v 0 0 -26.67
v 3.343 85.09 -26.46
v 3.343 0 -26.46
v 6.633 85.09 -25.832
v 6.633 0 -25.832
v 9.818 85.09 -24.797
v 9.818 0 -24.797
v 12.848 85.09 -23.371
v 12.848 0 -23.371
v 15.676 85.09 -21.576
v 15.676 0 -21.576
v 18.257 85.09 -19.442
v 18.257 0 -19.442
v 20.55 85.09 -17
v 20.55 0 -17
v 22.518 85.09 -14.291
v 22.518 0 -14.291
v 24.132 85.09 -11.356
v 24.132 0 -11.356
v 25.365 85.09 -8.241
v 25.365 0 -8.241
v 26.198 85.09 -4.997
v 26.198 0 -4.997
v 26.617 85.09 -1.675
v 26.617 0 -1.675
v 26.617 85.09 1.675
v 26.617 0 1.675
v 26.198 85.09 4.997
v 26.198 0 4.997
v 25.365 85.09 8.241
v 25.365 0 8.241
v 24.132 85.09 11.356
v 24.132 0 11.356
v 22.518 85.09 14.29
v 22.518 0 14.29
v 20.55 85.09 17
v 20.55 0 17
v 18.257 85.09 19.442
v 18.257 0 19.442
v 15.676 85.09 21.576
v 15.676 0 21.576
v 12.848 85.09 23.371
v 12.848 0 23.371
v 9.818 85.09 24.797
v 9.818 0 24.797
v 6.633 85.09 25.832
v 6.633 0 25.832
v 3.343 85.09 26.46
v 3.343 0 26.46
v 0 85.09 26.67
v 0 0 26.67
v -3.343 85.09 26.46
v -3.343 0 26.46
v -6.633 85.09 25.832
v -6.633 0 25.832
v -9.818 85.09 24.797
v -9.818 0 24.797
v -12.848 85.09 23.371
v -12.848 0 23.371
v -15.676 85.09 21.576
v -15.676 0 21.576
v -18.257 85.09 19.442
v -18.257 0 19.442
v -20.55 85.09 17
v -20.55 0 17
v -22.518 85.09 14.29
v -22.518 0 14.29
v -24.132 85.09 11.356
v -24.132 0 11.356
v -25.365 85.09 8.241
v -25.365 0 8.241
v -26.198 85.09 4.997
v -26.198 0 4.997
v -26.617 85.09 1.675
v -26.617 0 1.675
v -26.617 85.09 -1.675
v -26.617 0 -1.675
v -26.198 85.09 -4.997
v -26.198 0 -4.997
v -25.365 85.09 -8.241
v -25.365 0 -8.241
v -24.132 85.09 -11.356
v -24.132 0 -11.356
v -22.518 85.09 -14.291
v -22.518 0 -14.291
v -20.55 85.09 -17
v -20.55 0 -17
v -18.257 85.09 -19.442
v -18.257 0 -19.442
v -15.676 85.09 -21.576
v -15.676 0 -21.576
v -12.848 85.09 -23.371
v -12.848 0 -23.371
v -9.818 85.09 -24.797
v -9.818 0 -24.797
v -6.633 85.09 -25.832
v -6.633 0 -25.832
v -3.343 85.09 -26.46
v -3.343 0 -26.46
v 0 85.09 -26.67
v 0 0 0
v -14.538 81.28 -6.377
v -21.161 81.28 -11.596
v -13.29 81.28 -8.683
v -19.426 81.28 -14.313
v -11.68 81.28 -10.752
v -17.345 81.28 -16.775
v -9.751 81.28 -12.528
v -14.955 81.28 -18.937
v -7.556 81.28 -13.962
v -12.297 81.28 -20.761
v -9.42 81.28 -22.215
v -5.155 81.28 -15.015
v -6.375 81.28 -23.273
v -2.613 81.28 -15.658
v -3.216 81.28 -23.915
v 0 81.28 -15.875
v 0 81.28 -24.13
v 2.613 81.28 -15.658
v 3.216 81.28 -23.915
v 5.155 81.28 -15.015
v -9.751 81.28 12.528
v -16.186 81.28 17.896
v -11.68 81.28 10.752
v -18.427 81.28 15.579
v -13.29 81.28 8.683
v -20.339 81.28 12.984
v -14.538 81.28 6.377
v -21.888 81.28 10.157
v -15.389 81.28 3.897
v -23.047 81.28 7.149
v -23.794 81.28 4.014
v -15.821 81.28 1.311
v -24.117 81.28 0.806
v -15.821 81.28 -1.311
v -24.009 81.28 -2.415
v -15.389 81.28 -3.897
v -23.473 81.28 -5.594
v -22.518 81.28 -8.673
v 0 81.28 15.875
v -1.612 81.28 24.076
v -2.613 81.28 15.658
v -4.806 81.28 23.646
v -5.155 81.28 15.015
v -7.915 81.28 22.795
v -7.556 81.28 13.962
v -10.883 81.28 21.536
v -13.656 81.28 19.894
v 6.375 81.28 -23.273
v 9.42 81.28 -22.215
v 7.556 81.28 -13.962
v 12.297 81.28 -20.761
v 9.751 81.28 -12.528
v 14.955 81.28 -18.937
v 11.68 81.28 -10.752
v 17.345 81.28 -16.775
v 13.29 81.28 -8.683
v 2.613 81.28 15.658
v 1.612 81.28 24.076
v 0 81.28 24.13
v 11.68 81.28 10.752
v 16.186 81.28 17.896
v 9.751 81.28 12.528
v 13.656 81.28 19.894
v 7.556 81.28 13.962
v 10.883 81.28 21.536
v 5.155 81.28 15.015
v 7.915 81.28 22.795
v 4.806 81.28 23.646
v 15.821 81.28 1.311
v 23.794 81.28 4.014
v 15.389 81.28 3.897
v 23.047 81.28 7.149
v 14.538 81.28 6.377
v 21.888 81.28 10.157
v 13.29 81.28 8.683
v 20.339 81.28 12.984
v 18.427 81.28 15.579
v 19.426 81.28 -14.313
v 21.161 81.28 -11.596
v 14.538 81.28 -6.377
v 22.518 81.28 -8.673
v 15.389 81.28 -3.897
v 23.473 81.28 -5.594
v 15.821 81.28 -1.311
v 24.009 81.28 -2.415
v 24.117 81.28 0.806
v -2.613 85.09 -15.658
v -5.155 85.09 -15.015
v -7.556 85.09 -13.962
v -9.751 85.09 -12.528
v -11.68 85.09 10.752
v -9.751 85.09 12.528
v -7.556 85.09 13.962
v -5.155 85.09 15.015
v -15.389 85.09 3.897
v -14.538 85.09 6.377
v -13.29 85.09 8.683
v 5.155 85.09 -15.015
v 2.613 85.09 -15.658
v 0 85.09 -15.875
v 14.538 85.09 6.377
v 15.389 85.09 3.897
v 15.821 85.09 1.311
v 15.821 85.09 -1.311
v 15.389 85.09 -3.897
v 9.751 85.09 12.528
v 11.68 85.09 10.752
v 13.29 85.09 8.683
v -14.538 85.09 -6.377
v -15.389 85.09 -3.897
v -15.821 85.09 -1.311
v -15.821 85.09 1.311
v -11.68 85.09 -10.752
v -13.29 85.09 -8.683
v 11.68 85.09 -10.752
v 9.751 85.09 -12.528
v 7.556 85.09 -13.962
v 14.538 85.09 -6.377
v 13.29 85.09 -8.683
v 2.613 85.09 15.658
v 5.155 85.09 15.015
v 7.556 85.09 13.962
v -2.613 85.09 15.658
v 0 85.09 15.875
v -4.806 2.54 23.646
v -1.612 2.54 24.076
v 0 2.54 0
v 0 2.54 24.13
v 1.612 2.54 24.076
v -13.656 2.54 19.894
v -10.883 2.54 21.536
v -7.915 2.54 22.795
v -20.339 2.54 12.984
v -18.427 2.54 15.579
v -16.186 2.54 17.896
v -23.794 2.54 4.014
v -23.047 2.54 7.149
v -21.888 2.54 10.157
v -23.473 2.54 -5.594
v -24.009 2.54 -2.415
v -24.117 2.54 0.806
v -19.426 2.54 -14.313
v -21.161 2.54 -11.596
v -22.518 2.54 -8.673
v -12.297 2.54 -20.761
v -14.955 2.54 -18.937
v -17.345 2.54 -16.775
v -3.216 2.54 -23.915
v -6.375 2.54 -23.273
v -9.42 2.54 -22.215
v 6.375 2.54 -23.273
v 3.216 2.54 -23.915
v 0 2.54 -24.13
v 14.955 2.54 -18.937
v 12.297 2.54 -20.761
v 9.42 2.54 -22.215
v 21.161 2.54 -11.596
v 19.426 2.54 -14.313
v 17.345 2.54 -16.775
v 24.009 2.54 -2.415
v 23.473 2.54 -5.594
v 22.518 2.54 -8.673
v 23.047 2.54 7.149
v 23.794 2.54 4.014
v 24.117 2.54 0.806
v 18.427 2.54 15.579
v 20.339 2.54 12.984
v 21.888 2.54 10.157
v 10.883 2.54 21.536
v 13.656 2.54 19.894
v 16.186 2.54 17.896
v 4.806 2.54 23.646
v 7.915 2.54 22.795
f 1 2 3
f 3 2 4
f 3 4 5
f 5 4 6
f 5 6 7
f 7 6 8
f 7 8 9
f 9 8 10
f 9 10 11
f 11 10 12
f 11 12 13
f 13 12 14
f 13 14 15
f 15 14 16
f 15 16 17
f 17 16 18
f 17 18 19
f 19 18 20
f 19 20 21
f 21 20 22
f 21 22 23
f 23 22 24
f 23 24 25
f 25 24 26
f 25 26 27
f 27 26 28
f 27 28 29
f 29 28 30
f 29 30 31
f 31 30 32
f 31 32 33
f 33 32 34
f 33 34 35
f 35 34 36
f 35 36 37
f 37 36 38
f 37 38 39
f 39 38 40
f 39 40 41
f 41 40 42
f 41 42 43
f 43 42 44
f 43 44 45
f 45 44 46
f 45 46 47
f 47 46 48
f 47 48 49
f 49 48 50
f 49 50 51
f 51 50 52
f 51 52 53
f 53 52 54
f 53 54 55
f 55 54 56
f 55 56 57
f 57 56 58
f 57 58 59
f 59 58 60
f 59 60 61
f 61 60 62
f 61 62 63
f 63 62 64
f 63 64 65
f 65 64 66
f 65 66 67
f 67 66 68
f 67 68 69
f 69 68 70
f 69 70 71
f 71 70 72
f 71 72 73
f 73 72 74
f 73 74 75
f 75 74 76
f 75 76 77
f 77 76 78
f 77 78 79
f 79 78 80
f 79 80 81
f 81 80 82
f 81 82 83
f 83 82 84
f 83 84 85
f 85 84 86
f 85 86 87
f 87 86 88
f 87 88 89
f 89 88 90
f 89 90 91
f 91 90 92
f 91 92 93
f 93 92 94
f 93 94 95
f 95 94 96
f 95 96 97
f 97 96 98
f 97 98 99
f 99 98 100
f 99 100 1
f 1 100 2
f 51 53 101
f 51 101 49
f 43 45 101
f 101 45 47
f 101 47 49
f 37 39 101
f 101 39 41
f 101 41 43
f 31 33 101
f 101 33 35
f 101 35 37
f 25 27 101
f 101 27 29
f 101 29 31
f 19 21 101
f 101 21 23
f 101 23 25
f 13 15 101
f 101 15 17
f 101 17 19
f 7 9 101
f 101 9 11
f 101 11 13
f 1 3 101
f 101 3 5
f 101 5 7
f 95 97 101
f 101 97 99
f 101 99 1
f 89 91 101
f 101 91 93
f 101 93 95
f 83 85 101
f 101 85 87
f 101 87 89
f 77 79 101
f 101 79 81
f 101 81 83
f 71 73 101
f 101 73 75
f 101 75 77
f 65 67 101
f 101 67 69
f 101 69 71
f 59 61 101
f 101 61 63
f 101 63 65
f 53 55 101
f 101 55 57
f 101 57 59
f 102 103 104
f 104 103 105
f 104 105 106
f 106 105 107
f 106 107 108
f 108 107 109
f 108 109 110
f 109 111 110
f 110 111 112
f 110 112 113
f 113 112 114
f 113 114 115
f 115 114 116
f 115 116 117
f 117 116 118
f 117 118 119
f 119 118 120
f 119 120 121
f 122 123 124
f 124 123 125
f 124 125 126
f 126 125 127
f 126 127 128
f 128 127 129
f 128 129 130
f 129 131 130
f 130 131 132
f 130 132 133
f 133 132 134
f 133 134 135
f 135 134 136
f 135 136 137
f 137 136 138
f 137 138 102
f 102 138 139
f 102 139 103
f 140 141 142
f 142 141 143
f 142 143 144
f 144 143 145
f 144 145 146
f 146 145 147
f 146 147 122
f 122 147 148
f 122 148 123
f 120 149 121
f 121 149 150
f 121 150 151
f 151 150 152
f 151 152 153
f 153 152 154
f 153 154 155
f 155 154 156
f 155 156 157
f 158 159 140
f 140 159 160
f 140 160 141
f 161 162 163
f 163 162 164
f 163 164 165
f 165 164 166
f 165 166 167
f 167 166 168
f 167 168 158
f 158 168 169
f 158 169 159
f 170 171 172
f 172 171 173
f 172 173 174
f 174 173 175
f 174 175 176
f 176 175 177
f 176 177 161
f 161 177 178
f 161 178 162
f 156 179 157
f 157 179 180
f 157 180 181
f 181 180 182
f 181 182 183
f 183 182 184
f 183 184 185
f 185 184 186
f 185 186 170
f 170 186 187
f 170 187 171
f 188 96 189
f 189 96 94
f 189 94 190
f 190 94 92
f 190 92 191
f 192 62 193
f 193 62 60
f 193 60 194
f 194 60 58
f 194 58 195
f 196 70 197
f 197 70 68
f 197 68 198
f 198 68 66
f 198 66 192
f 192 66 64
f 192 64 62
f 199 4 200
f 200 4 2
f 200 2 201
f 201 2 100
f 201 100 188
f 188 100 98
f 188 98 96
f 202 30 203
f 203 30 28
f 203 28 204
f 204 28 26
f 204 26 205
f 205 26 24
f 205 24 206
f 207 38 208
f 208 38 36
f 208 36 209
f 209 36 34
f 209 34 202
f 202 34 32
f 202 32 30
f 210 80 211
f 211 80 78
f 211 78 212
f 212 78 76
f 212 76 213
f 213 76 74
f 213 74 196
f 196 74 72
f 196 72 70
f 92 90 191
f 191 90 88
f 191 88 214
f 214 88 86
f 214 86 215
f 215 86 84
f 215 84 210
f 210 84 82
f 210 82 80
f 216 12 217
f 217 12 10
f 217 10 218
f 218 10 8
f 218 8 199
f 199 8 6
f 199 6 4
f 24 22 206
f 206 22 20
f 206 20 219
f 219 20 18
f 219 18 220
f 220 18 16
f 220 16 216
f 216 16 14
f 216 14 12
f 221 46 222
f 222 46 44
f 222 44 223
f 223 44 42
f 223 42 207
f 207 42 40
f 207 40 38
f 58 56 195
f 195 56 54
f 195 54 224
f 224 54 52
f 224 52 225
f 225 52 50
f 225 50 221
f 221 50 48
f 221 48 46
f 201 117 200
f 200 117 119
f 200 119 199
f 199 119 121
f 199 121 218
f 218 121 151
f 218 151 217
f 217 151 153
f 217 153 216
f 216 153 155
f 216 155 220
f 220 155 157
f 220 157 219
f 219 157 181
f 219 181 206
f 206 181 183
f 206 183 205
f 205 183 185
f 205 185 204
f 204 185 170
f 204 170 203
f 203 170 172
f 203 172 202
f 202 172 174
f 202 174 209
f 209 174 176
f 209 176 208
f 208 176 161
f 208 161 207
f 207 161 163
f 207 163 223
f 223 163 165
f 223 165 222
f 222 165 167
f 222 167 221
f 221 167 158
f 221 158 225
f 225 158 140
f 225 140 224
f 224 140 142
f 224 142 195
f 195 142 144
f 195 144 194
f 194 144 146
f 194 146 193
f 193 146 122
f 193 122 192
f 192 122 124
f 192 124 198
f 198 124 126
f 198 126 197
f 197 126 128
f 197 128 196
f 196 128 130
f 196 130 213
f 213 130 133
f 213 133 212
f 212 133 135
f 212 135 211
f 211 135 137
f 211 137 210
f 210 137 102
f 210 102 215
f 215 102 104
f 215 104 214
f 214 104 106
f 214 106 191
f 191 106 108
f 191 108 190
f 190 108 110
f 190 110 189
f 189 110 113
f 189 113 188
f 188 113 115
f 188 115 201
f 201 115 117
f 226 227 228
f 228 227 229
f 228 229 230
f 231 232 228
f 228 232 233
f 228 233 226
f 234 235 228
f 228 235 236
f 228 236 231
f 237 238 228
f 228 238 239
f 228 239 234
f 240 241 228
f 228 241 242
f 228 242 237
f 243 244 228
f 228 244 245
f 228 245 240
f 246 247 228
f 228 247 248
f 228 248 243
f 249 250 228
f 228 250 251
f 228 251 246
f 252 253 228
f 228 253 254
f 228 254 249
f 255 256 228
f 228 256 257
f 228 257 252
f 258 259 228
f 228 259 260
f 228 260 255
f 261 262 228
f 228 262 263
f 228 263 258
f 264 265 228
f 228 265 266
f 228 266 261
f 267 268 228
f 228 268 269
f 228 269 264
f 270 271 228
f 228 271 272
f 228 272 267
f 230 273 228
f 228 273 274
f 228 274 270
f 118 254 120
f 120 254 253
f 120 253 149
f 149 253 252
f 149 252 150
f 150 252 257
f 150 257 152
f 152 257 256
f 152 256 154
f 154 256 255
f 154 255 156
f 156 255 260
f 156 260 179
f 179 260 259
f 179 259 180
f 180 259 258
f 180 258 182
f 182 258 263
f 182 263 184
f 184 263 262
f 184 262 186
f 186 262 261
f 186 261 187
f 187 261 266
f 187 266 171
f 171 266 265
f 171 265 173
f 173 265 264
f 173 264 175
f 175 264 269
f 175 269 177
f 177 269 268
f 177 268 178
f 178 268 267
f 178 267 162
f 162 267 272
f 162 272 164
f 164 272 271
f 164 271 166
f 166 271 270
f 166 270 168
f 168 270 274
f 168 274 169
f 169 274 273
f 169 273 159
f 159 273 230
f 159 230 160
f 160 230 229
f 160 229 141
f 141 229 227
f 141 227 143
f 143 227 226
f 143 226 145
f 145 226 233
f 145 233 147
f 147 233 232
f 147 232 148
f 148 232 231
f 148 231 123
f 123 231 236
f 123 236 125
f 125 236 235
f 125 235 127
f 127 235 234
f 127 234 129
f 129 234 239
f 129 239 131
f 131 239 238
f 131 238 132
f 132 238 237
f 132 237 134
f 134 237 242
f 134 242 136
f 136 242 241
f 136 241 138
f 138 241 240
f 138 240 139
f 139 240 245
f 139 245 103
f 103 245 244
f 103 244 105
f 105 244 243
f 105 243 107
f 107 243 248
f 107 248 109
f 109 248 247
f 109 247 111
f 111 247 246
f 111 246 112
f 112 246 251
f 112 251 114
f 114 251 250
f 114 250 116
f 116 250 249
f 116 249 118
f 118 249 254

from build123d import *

# Parameters (mm, degrees)
SKETCH1_R           = 26.67
BOSS_EXTRUDE1_DEPTH = 81.28
SHELL1_T            = -2.54
SKETCH2_R           = 26.67
SKETCH2_R_2         = 15.875
BOSS_EXTRUDE2_DEPTH = 3.81


with BuildPart() as part:
    # Sketch1 → Boss-Extrude1 (new body)
    with BuildSketch(Plane(origin=(0, 0, 0), x_dir=(1, 0, 0), z_dir=(0, 1, 0))):
        with Locations(Location((0, 0, 0), (0, 0, 270))):
            Circle(SKETCH1_R)
    extrude(amount=BOSS_EXTRUDE1_DEPTH)

    # Shell1
    shell1_openings = [part.faces().sort_by_distance(p)[0] for p in [
        (0, 81.28, 0),
    ]]
    offset(amount=SHELL1_T, openings=shell1_openings, kind=Kind.INTERSECTION)

    # Sketch2 → Boss-Extrude2 (add)
    with BuildSketch(Plane(origin=(0, 81.28, 0), x_dir=(1, 0, 0), z_dir=(0, 1, 0))):
        with Locations(Location((0, 0, 0), (0, 0, 270))):
            Circle(SKETCH2_R)
        with Locations(Location((0, 0, 0), (0, 0, 90))):
            Circle(SKETCH2_R_2, mode=Mode.SUBTRACT)
    extrude(amount=BOSS_EXTRUDE2_DEPTH)


solid = part.part
